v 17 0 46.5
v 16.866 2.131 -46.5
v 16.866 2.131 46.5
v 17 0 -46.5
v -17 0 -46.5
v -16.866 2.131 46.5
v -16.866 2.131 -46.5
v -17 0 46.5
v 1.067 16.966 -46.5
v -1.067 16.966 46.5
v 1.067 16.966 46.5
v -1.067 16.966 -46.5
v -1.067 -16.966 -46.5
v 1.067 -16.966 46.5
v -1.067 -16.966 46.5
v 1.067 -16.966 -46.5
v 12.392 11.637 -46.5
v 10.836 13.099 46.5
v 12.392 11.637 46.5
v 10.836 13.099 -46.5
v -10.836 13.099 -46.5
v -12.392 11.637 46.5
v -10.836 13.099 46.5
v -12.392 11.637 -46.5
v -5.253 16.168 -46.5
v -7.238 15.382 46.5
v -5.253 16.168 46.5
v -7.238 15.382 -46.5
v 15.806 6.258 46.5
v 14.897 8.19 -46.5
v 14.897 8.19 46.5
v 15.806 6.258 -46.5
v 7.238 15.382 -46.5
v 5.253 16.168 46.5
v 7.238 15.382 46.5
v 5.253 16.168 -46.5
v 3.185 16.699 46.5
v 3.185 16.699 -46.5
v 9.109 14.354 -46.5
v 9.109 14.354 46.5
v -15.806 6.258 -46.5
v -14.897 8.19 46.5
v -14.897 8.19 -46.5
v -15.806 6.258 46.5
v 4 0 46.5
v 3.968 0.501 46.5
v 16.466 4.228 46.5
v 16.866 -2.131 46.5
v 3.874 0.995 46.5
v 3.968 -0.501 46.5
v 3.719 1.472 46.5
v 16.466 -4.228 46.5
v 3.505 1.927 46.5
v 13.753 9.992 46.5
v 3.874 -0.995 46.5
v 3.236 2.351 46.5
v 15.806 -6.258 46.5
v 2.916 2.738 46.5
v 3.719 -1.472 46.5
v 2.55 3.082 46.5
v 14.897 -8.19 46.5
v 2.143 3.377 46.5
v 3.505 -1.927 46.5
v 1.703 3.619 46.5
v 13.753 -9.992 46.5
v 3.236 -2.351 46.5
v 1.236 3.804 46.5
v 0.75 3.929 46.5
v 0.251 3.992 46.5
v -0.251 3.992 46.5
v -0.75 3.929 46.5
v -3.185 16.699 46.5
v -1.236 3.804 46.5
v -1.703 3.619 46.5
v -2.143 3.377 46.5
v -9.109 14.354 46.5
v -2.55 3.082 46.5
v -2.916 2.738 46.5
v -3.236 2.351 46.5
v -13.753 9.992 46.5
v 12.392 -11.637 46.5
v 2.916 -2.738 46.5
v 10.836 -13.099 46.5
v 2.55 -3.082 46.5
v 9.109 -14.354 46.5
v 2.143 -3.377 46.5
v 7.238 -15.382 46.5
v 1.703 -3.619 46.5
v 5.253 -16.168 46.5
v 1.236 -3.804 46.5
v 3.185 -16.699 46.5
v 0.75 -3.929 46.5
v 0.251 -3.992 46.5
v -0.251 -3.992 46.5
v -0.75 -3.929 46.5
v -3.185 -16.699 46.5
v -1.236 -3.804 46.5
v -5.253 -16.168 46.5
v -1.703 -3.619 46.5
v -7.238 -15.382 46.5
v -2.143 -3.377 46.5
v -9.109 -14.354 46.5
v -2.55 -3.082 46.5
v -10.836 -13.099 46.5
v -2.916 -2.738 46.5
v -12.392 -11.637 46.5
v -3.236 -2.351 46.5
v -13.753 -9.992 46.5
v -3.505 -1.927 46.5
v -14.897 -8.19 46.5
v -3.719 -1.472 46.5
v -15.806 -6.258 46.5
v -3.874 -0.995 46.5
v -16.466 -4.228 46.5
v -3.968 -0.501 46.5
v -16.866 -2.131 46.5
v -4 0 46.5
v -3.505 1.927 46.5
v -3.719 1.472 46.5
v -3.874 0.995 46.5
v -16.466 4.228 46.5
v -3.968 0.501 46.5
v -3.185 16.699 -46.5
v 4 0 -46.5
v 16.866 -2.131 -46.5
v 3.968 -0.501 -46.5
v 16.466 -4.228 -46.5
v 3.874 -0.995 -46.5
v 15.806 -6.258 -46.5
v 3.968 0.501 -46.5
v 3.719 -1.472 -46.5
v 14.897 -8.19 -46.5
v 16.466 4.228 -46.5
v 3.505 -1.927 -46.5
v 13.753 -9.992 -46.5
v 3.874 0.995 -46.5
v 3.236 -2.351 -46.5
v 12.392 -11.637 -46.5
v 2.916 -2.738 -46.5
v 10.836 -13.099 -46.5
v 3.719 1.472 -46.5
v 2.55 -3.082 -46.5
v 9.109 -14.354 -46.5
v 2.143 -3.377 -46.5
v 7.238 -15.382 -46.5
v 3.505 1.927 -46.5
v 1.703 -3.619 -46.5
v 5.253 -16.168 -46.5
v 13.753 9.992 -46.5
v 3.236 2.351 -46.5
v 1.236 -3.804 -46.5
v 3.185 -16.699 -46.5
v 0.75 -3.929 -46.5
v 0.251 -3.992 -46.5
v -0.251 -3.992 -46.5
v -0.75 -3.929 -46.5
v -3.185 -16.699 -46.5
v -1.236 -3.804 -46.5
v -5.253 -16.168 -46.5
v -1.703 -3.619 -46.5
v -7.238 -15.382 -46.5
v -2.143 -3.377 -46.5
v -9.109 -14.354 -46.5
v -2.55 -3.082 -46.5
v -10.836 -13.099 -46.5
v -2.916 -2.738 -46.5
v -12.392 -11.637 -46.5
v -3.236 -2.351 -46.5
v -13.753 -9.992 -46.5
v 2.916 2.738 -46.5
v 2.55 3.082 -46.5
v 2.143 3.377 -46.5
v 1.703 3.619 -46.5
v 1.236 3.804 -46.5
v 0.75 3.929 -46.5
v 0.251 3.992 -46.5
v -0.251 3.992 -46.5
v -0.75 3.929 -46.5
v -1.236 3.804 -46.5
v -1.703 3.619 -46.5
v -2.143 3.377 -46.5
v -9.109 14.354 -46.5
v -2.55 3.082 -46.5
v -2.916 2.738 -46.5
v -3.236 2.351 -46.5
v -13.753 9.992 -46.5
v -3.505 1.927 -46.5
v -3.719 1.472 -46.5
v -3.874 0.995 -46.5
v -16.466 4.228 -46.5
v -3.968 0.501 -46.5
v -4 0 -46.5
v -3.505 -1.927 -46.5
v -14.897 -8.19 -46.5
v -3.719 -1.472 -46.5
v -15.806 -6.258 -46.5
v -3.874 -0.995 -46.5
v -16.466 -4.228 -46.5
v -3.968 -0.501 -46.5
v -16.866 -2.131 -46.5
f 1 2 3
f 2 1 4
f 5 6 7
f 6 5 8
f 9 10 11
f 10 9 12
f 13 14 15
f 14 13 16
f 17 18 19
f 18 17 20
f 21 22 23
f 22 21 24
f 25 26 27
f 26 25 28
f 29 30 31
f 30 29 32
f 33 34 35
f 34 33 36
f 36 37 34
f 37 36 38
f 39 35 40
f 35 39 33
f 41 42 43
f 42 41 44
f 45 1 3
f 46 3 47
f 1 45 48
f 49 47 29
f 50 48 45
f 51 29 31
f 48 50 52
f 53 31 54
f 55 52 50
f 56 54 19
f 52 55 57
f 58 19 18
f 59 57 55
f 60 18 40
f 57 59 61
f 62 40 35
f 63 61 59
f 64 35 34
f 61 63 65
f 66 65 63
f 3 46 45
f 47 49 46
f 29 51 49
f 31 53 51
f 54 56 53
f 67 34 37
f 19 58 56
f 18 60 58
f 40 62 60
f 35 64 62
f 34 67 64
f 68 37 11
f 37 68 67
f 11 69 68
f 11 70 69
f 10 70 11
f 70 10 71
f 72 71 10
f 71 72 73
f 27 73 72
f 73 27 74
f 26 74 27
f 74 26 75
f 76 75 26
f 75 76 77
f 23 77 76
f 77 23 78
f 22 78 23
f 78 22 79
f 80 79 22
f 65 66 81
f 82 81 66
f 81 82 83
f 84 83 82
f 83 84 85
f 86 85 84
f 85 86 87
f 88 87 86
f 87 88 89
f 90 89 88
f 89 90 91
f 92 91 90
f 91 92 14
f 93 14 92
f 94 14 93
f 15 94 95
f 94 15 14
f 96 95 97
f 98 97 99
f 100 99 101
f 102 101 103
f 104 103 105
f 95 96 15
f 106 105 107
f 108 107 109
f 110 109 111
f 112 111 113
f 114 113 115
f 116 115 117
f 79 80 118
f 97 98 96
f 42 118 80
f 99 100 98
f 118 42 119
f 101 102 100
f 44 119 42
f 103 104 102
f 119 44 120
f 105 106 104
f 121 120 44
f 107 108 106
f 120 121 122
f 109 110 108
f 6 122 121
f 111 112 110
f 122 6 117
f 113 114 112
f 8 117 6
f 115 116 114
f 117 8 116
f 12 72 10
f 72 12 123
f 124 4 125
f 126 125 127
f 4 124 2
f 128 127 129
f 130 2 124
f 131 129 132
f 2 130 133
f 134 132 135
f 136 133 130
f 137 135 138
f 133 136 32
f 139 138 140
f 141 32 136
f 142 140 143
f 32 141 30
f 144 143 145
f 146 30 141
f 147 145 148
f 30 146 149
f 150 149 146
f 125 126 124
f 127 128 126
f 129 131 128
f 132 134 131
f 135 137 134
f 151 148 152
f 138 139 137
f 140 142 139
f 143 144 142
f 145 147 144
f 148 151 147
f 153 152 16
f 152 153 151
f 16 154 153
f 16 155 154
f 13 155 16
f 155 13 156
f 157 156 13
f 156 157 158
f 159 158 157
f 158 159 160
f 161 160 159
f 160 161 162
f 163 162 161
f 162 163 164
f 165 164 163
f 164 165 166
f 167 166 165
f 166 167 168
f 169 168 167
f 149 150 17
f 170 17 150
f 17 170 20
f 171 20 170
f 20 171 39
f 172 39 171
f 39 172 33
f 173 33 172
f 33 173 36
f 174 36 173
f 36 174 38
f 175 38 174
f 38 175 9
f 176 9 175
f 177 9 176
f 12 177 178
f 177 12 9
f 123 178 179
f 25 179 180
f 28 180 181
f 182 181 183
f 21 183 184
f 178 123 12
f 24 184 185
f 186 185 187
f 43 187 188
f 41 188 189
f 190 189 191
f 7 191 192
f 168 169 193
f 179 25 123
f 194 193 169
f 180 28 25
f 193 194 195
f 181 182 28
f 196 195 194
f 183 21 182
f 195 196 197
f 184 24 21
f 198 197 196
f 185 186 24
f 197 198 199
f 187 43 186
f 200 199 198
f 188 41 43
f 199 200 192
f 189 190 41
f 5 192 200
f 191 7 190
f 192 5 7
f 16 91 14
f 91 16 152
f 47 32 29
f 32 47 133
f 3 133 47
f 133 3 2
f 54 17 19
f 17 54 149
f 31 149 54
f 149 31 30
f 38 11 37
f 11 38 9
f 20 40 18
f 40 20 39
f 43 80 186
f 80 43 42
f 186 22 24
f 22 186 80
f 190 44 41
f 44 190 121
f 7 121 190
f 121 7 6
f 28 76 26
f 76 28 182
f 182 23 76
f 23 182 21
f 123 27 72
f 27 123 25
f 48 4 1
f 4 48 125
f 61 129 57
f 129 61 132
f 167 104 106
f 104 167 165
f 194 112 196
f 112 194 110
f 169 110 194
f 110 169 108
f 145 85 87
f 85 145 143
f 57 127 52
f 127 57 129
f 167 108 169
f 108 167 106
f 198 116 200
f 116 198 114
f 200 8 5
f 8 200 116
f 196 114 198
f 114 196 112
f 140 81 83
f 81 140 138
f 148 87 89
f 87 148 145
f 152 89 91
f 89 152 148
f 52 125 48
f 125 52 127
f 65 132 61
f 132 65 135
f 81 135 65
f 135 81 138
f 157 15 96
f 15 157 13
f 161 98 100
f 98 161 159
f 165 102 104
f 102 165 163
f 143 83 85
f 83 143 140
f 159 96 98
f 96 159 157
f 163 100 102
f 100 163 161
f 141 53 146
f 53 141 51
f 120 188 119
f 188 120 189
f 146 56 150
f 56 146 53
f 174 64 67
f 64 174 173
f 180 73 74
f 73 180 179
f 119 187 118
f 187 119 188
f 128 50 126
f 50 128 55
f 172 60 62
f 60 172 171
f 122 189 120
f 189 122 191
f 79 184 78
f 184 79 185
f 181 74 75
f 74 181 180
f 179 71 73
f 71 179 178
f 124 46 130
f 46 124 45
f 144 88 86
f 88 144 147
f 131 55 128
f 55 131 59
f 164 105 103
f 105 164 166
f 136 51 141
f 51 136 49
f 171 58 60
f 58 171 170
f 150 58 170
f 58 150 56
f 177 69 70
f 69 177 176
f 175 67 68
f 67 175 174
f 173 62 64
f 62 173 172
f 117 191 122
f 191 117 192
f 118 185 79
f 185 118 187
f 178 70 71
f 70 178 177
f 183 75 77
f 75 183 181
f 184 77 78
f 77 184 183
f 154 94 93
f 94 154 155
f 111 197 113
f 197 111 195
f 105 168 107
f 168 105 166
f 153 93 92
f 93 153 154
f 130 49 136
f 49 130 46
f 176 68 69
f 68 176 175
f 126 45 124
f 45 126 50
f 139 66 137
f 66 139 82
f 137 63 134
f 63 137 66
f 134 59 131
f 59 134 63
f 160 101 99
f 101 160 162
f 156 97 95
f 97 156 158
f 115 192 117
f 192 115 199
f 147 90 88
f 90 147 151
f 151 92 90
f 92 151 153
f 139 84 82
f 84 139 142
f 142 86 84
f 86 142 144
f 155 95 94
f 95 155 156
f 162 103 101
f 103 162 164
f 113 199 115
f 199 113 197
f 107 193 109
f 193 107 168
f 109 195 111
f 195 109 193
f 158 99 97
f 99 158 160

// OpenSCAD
$fn = 50;


difference() {
	union() {
		translate(v = [0, 0, -46.5000000000]) {
			cylinder(h = 93, r = 17.0000000000);
		}
	}
	union() {
		translate(v = [0, 0, -100.0000000000]) {
			cylinder(h = 200, r = 4);
		}
	}
}
